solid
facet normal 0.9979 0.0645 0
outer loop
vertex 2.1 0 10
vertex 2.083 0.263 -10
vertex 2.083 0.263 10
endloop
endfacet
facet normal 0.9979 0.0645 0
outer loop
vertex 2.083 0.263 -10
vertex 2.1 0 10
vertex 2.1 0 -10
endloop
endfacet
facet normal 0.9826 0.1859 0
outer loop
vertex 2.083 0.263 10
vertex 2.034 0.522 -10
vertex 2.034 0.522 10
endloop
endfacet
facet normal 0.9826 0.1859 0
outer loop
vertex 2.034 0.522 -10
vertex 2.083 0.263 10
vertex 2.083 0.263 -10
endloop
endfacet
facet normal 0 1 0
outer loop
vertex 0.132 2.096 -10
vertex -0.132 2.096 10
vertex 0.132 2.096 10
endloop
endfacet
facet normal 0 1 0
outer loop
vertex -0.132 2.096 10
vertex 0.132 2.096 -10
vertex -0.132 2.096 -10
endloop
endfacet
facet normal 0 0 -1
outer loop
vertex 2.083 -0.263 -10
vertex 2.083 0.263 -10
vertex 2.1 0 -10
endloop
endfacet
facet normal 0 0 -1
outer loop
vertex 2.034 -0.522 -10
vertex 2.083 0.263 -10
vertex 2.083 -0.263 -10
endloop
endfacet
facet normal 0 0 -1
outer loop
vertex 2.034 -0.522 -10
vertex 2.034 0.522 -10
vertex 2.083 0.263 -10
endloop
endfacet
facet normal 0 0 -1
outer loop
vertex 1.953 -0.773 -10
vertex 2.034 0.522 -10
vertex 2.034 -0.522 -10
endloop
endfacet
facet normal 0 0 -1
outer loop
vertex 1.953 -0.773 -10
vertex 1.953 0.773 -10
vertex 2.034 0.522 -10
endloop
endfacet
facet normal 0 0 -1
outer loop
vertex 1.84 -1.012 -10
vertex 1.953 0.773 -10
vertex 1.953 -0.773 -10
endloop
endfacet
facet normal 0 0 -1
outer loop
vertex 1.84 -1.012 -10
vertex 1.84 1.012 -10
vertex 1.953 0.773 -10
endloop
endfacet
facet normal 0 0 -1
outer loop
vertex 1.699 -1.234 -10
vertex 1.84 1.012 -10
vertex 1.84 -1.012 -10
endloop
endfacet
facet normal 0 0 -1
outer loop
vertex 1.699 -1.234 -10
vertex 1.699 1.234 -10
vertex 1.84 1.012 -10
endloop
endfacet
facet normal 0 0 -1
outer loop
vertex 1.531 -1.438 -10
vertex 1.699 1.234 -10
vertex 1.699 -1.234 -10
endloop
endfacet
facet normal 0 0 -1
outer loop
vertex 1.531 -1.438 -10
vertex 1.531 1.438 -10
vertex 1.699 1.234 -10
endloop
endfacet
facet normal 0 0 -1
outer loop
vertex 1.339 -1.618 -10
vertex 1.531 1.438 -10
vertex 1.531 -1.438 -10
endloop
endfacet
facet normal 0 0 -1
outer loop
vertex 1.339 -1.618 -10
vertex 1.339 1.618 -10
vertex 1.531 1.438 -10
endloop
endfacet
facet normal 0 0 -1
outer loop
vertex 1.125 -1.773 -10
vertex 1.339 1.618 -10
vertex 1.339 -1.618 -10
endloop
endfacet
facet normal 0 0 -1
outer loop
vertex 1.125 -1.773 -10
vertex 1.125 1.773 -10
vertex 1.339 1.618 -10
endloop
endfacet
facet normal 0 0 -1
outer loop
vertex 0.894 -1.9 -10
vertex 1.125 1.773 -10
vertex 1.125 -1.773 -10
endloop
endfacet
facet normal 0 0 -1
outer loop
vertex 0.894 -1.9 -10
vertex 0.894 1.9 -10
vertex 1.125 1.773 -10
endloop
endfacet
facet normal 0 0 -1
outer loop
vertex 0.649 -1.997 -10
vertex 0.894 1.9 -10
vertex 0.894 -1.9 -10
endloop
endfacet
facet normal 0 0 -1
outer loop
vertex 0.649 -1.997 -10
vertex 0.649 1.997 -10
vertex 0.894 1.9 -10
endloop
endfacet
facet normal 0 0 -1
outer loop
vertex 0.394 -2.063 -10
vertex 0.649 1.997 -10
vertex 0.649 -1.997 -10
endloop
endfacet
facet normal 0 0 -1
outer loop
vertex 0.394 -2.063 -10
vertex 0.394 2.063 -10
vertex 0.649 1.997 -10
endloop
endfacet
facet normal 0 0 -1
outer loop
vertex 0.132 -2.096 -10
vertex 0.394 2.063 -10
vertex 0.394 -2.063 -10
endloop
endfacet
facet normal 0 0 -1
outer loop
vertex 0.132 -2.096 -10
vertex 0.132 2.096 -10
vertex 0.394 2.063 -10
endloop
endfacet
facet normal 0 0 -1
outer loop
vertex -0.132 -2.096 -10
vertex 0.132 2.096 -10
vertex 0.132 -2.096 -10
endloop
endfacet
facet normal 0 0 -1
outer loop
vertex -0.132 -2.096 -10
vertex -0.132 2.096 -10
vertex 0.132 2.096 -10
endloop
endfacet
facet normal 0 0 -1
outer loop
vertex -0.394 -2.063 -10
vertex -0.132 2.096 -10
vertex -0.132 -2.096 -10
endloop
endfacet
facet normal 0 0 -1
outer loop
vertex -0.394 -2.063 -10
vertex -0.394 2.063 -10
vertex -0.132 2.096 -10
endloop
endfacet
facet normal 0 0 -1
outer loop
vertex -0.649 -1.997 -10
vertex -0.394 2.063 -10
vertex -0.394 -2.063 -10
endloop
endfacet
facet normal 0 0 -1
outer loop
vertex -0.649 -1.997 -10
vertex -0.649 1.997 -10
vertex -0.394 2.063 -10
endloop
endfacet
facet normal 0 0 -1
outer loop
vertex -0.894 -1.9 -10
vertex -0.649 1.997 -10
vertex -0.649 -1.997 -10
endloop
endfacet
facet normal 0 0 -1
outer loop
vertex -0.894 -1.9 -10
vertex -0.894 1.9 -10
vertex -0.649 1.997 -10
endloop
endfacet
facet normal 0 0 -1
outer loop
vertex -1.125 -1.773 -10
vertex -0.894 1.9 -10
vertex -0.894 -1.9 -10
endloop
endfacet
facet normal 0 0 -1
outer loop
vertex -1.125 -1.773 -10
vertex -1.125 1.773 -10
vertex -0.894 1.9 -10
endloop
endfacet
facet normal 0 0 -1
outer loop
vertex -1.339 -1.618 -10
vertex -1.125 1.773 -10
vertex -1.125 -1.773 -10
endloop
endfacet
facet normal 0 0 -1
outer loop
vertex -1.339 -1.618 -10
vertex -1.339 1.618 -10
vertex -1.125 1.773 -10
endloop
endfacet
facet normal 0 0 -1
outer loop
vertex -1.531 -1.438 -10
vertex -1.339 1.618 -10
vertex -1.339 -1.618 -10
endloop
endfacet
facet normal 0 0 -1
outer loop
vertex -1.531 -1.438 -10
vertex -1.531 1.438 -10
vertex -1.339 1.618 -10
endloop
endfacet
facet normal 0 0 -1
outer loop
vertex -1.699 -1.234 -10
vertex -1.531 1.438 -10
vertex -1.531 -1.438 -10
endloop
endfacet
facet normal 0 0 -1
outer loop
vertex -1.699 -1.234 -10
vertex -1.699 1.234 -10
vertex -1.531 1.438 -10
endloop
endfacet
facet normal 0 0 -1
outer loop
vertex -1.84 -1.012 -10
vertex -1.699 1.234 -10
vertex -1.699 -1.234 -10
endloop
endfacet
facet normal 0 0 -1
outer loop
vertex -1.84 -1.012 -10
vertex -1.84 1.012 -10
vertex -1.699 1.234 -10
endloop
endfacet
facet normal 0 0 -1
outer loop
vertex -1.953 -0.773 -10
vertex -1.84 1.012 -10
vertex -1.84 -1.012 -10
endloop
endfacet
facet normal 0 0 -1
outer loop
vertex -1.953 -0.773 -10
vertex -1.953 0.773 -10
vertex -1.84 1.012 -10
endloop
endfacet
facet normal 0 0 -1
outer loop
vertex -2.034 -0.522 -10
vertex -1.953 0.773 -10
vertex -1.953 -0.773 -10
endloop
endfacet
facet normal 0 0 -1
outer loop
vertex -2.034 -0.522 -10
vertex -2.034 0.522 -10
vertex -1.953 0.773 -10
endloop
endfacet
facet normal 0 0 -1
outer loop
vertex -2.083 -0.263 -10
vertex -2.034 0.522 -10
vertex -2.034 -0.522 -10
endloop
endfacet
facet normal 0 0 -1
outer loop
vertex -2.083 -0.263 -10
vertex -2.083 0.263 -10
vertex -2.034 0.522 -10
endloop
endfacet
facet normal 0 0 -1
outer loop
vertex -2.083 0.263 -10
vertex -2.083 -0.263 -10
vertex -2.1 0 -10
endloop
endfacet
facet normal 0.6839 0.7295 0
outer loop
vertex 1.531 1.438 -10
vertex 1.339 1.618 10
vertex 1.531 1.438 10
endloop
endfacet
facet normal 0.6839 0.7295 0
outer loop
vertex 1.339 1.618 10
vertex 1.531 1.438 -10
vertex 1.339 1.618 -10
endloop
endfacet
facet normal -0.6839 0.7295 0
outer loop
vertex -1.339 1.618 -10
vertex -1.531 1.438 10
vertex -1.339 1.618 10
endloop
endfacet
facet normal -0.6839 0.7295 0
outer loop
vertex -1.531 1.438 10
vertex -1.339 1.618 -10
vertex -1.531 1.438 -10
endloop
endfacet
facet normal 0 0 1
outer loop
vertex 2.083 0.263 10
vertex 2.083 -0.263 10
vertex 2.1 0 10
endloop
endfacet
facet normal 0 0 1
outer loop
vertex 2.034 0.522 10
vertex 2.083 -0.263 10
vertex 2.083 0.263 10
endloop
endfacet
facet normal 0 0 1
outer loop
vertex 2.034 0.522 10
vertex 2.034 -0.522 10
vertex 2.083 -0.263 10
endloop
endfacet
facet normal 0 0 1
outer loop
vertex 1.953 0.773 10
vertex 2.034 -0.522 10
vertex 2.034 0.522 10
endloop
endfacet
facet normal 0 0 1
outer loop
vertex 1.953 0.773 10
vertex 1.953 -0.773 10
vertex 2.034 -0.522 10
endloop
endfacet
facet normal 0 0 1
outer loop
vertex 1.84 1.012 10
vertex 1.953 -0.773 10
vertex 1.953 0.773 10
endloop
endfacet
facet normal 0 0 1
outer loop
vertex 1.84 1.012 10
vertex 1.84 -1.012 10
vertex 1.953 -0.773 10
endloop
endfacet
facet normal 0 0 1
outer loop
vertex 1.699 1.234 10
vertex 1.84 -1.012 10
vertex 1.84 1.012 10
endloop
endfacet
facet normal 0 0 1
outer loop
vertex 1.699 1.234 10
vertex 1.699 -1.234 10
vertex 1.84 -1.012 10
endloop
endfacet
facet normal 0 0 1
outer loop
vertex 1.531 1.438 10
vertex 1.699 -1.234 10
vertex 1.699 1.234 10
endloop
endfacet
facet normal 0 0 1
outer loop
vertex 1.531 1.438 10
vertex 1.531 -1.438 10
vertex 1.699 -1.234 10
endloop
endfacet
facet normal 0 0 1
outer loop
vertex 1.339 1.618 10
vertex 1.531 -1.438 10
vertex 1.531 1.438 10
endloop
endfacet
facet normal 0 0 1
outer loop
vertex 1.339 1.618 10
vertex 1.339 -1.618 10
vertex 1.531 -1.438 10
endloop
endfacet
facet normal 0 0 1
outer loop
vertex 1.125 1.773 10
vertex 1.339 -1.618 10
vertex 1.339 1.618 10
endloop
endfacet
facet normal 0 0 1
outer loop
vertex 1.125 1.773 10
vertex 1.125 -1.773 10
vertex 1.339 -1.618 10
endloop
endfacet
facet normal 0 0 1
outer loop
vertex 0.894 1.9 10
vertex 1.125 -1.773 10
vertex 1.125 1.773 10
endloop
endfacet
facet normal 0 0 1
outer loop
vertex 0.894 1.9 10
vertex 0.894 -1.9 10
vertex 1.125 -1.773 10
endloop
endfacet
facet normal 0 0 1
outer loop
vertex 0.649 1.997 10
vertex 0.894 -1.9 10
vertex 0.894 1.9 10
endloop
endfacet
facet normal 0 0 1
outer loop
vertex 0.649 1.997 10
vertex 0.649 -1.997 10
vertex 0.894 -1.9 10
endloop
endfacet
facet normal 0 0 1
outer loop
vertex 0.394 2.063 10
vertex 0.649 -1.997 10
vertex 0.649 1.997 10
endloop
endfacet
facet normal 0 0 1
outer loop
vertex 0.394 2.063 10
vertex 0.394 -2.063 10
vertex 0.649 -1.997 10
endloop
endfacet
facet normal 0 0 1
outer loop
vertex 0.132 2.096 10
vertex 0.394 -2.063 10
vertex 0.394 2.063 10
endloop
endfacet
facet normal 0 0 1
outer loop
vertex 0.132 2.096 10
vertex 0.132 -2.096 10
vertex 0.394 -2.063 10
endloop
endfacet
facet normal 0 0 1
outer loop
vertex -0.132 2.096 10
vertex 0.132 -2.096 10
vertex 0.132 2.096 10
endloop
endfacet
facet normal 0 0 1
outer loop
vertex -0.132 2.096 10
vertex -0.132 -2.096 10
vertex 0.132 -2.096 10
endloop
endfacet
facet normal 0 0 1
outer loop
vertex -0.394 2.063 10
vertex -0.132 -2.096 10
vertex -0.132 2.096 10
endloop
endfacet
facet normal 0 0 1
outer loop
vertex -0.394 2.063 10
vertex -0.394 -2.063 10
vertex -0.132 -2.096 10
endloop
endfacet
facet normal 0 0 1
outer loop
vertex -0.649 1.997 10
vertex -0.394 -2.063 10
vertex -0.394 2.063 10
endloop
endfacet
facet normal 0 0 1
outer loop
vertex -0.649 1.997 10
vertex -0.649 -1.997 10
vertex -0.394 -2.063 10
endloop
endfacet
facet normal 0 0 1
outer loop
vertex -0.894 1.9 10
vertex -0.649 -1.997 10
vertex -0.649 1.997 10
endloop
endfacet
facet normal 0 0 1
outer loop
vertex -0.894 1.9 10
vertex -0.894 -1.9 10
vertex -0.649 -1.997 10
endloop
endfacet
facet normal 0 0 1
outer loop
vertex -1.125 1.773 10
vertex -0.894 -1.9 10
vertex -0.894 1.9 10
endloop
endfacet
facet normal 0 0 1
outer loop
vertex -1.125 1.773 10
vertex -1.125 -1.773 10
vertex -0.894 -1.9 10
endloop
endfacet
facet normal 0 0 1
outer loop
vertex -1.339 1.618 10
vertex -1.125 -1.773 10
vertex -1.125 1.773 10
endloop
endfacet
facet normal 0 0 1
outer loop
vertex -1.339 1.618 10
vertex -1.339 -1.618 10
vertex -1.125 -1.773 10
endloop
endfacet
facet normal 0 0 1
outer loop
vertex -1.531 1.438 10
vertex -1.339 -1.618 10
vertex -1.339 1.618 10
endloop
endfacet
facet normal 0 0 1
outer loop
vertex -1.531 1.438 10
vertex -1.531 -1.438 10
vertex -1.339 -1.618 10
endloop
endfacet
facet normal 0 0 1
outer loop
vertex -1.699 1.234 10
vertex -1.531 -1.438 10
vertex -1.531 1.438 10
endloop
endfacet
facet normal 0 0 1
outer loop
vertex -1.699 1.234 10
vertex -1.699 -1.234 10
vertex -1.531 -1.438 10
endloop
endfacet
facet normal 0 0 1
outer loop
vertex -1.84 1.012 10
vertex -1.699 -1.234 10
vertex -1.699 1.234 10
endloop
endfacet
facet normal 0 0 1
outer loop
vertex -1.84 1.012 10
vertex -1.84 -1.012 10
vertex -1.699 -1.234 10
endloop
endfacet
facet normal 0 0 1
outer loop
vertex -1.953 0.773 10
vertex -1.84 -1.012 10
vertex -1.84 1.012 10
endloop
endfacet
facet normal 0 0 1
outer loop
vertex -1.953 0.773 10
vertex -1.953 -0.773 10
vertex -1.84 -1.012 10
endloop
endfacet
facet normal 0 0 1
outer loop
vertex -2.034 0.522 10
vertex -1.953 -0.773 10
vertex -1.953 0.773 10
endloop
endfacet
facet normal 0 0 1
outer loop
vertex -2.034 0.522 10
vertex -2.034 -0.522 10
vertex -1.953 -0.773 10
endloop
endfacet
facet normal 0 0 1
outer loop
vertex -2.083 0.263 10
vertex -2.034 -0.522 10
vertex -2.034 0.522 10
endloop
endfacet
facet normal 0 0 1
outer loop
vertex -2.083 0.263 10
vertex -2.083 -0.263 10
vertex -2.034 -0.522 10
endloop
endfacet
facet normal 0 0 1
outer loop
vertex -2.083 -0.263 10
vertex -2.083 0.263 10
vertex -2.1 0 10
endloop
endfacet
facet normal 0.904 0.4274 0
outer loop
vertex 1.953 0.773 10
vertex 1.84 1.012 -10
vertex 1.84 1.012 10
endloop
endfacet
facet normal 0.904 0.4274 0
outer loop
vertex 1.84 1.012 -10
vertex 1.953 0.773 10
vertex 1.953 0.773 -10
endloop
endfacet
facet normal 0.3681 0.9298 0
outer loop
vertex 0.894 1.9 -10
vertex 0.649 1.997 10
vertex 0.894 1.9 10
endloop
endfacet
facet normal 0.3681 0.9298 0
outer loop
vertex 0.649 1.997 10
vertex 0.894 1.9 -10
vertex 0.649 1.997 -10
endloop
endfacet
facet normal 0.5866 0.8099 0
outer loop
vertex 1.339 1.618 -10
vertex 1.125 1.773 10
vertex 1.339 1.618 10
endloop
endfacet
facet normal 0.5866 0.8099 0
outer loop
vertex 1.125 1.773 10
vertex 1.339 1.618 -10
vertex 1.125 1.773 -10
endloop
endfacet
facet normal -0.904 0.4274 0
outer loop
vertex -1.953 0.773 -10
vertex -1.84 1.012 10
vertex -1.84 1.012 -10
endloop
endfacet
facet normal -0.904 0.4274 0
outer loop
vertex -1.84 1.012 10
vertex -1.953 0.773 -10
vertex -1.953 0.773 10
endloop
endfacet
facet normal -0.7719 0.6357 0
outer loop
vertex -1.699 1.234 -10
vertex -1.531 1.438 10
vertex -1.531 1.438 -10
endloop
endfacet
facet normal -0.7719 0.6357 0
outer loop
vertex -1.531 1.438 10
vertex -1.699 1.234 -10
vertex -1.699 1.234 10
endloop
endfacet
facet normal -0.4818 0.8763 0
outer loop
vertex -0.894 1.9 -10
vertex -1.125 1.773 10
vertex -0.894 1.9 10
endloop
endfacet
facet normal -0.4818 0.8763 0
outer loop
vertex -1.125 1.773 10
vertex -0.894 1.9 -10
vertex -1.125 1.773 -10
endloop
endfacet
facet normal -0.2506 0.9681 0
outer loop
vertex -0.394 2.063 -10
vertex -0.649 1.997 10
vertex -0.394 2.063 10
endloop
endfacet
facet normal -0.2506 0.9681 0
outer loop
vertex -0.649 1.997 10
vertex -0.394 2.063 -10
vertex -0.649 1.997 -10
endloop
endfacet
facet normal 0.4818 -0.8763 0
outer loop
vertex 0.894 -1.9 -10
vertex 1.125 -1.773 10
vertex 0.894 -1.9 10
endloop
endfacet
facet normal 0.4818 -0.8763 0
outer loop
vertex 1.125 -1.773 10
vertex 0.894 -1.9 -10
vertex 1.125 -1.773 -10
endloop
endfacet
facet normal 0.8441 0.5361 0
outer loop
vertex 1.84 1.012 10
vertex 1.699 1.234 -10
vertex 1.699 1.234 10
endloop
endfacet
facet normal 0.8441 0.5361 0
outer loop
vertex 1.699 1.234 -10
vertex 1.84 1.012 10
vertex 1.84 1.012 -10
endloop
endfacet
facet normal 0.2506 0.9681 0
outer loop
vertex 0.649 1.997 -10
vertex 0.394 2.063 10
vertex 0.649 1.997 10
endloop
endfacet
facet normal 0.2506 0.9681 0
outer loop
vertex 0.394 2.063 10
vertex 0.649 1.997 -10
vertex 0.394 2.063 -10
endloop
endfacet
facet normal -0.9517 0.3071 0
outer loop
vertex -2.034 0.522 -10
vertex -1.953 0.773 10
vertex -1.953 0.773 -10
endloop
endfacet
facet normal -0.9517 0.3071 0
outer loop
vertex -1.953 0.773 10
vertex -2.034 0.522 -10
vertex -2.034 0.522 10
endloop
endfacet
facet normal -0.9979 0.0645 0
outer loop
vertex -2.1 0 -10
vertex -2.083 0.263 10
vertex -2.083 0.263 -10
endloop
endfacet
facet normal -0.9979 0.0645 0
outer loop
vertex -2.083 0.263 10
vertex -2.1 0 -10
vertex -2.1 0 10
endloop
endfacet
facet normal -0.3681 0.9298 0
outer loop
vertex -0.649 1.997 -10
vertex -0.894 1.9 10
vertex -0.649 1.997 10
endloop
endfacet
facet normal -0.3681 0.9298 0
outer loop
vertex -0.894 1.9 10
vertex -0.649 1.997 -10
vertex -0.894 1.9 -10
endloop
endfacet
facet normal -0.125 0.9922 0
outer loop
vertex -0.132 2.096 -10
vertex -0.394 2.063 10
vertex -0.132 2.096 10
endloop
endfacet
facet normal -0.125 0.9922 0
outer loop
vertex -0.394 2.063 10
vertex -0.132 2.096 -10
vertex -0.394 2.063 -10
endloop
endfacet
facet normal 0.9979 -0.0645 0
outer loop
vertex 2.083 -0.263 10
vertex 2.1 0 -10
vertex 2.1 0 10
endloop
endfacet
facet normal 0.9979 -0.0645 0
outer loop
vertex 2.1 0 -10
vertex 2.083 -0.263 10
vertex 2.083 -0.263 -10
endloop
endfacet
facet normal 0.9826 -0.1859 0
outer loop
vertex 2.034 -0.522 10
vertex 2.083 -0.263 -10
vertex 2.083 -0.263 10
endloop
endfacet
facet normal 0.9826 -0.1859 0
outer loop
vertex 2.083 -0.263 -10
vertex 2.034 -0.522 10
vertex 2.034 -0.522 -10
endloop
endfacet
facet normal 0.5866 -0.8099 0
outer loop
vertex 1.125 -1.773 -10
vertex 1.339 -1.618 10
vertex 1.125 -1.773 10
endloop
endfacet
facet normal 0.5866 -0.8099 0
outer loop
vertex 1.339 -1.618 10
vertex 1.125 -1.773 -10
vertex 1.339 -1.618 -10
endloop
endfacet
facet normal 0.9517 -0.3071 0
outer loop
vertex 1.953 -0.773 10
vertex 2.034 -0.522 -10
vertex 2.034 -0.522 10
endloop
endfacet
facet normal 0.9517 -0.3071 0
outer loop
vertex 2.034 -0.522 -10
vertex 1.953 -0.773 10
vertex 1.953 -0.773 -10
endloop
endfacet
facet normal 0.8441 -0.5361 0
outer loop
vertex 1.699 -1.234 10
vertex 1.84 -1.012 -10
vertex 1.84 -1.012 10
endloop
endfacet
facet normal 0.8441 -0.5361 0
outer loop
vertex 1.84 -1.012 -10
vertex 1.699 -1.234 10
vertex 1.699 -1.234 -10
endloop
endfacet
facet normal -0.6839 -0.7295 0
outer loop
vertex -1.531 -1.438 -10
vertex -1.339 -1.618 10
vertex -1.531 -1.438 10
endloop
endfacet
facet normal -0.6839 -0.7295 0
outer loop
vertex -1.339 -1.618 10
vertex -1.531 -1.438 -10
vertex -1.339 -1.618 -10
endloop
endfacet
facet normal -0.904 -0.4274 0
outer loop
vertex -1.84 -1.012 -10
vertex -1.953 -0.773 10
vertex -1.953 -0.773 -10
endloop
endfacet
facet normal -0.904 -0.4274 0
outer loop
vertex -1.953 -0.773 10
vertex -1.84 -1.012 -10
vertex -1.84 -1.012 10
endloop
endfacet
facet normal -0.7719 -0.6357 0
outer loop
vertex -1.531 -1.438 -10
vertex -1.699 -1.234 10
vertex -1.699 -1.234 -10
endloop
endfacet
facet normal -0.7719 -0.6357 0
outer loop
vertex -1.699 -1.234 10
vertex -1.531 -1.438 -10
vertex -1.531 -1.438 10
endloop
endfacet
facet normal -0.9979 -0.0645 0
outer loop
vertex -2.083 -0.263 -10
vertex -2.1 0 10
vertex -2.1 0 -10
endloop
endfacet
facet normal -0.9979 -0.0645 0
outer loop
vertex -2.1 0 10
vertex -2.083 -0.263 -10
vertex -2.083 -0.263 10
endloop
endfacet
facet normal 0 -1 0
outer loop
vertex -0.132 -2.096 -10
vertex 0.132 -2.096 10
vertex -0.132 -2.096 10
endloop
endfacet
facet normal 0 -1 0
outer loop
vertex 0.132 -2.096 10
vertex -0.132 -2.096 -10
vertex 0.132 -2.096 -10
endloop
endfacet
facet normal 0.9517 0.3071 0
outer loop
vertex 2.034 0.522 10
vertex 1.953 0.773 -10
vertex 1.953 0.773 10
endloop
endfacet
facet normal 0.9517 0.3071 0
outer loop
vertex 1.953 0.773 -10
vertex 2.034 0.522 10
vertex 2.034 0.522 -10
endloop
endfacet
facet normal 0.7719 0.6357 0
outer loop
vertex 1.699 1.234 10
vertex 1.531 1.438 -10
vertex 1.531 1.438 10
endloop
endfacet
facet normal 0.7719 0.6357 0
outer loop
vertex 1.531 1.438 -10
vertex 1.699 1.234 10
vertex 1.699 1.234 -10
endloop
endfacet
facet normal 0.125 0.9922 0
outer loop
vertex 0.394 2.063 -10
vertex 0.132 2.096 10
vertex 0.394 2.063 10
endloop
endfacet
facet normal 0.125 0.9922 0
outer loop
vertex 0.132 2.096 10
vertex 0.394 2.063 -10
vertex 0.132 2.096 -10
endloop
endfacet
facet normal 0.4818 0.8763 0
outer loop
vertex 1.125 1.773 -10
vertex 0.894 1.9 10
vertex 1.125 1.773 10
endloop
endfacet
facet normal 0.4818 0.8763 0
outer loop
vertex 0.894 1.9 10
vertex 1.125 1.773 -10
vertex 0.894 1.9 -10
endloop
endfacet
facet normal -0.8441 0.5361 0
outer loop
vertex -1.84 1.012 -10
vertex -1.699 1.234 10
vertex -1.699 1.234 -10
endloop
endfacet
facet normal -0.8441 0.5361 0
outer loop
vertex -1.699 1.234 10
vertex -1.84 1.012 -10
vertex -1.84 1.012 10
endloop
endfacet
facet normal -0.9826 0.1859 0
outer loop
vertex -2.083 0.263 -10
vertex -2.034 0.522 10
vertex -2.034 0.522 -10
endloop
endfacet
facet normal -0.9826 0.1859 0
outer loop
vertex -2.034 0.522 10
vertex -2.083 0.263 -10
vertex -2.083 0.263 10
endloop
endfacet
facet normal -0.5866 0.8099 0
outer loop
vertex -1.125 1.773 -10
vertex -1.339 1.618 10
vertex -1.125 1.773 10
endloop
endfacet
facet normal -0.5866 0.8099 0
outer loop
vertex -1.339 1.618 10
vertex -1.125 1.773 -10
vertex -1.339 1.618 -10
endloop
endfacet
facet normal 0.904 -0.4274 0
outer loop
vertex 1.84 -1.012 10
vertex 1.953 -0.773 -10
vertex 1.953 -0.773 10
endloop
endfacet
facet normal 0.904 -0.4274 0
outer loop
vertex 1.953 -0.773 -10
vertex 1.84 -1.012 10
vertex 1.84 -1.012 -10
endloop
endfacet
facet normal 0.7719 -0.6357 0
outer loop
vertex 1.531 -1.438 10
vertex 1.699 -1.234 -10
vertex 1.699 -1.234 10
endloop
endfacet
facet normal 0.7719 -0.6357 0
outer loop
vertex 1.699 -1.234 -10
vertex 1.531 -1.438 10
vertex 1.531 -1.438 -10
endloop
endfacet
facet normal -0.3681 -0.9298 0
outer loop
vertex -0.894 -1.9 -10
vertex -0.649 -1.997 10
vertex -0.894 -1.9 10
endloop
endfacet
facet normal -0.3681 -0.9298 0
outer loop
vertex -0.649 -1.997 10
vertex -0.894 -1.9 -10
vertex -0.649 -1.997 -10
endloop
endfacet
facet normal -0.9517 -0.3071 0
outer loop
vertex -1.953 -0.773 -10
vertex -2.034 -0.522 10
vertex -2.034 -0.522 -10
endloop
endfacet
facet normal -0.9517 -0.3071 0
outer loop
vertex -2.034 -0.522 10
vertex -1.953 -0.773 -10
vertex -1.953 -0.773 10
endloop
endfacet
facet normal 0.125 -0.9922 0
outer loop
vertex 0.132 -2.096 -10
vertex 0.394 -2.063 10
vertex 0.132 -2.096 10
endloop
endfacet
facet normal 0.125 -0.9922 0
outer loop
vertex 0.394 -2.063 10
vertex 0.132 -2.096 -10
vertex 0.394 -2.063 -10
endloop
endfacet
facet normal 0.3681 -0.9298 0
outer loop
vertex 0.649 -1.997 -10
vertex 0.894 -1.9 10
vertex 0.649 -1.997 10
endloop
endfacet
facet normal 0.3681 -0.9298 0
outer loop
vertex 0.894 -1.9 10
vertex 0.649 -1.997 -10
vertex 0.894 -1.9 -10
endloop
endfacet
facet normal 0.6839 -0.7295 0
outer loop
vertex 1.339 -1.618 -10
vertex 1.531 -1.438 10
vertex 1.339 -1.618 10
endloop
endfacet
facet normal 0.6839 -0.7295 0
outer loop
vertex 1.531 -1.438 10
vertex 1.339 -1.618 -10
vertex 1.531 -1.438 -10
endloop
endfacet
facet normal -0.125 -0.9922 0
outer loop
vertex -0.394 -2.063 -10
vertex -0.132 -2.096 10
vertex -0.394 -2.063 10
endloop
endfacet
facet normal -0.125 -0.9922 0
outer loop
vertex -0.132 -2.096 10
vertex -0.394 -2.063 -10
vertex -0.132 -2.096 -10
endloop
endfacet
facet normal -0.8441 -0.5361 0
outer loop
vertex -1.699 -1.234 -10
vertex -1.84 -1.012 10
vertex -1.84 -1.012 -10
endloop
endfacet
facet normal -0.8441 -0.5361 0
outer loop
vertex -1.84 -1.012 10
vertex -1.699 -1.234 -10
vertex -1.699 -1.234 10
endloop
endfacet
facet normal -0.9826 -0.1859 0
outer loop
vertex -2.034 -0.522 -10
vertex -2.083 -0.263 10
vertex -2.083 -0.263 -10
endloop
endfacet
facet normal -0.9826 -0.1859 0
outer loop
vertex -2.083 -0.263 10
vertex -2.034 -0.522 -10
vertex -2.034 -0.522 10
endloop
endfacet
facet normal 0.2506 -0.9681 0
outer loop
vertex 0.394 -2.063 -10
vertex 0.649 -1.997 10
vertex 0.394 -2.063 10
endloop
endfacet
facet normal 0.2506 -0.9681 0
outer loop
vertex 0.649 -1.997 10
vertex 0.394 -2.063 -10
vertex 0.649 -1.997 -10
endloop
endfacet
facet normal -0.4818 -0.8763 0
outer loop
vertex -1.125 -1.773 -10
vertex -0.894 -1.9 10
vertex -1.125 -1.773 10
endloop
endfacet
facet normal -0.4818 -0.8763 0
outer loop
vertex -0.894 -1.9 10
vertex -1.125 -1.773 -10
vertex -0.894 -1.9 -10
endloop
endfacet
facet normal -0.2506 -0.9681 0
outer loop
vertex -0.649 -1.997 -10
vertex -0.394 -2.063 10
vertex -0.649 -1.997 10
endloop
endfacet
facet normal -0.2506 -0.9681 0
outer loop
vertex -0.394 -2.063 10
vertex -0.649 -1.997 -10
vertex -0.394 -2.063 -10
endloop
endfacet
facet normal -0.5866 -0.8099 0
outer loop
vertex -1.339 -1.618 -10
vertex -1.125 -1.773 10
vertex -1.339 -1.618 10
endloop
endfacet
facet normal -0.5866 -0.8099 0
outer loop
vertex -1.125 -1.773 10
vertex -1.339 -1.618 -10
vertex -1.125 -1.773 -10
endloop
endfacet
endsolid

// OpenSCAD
$fn = 50;


difference() {
	union() {
		translate(v = [0, 0, -10.0000000000]) {
			cylinder(h = 20, r = 2.1000000000);
		}
	}
	union() {
		translate(v = [0, 0, -100.0000000000]) {
			cylinder(h = 200, r = 0);
		}
	}
}
